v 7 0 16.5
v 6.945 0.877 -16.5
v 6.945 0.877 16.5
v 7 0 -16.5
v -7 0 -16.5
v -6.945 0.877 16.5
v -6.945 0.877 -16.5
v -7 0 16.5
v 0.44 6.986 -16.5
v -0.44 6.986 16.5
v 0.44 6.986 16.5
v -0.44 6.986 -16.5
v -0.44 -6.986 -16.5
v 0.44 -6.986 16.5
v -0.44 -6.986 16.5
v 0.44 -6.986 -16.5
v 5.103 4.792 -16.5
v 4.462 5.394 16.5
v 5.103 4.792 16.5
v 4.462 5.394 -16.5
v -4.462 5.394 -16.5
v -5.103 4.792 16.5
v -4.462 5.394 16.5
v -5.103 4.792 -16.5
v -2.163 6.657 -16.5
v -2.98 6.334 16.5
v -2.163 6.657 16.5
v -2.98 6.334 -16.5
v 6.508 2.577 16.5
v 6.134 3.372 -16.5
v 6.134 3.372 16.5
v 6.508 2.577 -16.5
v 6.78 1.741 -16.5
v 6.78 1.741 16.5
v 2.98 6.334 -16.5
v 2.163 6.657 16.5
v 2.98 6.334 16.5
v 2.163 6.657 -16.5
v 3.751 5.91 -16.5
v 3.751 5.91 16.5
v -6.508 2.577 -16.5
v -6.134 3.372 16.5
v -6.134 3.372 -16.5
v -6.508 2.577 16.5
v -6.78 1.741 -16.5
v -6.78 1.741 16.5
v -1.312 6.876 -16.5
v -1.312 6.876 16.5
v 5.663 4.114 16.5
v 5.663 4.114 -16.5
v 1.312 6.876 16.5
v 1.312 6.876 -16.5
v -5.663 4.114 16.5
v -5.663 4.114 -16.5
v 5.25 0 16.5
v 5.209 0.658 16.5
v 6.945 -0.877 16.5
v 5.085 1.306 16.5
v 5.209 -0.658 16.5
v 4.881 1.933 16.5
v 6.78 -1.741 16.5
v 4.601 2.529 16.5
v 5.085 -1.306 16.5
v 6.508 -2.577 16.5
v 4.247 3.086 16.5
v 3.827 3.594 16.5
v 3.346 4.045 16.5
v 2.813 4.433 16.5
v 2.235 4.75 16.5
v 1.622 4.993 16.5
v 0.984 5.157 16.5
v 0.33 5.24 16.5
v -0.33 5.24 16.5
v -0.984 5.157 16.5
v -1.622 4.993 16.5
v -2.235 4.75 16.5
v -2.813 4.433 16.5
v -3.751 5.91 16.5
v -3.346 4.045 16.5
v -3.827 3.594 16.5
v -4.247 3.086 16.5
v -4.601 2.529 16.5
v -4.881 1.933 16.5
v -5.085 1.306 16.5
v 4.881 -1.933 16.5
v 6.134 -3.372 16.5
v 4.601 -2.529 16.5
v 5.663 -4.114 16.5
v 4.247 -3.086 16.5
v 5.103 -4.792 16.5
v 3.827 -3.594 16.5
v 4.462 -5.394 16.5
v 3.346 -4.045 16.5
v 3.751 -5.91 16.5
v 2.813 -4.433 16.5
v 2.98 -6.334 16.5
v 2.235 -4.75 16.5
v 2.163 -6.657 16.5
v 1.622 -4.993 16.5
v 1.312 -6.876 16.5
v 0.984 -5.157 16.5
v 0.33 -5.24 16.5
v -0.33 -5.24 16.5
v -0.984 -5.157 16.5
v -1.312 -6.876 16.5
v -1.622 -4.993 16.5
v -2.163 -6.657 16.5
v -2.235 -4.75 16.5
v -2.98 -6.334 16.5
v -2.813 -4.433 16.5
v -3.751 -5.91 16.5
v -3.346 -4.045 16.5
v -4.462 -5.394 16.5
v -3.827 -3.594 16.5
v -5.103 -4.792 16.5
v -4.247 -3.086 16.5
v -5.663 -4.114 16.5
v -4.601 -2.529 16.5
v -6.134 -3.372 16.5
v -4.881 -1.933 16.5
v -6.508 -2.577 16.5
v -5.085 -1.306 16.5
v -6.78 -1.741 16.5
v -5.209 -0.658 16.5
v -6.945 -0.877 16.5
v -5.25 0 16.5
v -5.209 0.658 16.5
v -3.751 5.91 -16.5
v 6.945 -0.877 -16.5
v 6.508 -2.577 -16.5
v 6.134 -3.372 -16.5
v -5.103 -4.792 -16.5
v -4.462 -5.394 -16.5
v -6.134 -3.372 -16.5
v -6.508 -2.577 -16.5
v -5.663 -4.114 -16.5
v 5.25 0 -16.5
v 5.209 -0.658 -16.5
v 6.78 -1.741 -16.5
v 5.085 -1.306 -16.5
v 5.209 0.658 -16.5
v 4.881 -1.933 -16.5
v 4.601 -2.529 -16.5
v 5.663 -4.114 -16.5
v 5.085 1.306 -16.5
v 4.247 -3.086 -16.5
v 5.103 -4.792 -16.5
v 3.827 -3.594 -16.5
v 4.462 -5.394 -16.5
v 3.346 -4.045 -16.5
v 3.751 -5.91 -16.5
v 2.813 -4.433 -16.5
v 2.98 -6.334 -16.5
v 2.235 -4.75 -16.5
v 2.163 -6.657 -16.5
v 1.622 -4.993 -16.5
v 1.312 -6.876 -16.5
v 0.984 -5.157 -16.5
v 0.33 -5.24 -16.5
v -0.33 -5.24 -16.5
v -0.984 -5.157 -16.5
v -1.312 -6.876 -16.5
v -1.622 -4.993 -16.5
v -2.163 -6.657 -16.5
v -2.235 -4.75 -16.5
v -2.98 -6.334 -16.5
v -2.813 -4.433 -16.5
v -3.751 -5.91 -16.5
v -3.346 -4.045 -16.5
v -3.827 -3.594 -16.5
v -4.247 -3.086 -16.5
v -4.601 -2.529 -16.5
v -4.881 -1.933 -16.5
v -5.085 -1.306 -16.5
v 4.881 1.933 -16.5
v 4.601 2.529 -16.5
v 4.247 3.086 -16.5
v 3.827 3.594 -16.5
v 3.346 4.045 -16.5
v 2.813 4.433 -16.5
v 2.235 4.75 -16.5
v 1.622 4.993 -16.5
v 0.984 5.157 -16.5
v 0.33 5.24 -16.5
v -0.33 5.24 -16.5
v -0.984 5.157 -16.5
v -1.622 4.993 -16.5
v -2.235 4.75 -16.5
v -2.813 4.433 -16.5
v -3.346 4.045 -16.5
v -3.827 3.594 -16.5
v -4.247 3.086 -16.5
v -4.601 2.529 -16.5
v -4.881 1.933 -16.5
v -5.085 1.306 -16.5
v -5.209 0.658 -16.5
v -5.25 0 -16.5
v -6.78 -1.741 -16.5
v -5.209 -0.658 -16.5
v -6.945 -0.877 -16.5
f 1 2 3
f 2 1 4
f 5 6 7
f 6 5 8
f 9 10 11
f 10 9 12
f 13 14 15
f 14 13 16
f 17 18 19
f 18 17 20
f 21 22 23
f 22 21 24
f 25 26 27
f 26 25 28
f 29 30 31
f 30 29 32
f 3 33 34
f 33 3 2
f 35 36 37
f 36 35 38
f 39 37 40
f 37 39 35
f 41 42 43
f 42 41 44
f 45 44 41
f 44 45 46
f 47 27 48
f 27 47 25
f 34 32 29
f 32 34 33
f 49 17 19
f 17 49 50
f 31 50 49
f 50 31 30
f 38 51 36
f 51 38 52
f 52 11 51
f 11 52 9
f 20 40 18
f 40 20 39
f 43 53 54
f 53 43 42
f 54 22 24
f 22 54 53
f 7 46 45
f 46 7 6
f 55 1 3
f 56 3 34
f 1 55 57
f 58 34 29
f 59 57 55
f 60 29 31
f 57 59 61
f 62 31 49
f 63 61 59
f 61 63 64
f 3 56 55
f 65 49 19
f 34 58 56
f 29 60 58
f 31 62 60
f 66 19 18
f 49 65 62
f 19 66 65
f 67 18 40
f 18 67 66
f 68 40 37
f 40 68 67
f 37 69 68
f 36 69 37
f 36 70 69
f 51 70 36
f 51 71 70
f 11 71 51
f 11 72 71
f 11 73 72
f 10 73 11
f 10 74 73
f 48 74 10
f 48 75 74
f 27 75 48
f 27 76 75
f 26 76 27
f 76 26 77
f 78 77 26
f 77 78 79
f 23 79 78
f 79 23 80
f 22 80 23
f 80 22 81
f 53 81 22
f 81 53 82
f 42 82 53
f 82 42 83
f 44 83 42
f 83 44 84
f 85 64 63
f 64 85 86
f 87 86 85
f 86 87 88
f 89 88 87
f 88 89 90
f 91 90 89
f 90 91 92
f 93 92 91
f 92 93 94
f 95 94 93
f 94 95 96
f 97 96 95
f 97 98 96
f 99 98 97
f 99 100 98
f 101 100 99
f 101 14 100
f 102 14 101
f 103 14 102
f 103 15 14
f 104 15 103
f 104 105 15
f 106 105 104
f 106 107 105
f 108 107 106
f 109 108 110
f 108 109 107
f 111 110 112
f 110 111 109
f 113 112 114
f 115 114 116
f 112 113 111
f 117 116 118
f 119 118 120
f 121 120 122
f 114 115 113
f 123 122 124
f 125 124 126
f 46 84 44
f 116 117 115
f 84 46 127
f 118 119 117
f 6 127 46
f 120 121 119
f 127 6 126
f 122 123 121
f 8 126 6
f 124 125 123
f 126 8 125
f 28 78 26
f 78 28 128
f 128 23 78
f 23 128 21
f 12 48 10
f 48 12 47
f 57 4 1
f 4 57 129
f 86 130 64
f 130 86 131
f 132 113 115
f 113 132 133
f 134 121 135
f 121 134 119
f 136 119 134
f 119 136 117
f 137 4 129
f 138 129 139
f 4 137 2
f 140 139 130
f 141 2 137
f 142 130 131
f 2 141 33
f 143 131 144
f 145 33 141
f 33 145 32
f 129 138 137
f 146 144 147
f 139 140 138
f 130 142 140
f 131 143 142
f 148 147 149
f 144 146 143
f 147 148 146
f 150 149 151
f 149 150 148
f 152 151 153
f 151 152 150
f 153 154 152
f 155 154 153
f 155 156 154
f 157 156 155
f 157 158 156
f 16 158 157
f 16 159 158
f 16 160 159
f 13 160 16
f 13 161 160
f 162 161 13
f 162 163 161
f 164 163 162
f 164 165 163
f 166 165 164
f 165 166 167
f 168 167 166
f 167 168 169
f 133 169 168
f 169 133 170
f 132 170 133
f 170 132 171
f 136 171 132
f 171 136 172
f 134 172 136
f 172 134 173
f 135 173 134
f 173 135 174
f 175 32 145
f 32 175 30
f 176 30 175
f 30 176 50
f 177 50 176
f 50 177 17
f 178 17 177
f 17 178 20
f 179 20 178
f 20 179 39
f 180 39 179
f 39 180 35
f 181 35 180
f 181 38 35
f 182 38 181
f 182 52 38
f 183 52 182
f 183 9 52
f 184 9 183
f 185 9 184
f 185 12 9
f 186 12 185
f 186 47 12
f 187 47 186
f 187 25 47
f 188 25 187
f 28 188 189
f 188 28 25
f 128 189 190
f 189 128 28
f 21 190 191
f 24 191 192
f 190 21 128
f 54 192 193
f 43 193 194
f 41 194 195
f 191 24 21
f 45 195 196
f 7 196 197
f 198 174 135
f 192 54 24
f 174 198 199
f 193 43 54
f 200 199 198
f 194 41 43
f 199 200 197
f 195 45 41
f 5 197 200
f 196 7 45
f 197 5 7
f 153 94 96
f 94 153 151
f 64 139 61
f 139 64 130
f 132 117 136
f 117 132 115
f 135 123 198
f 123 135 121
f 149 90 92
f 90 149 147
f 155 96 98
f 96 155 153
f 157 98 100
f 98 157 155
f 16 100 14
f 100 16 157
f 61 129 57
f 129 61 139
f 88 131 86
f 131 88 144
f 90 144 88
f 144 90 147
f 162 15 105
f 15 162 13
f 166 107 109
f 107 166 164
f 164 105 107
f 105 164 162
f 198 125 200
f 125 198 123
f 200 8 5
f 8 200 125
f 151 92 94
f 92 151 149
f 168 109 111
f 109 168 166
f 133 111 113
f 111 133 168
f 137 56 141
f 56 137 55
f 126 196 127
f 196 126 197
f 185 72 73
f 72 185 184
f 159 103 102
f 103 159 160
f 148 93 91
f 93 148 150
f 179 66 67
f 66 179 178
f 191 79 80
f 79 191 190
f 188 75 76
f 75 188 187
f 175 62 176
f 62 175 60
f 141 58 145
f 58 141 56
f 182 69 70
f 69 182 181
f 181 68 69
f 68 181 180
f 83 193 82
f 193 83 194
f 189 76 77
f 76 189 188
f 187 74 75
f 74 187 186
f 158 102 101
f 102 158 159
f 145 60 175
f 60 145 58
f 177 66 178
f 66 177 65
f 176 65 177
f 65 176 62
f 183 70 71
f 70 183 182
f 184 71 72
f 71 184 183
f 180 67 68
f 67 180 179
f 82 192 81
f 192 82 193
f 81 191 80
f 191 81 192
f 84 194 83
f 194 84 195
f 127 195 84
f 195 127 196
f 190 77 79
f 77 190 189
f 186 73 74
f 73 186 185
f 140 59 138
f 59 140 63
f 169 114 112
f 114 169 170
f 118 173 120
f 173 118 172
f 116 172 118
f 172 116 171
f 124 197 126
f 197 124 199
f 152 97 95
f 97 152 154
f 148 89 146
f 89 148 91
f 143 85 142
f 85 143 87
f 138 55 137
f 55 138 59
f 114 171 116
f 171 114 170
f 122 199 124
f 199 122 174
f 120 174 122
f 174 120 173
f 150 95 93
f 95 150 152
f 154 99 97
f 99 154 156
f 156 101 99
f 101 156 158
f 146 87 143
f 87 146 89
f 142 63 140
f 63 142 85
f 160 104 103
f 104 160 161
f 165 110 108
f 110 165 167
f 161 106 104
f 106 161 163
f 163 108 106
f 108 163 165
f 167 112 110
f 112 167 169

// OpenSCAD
$fn = 50;


difference() {
	union() {
		translate(v = [0, 0, -16.5000000000]) {
			cylinder(h = 33, r = 7.0000000000);
		}
	}
	union() {
		translate(v = [0, 0, -100.0000000000]) {
			cylinder(h = 200, r = 5.2500000000);
		}
	}
}
